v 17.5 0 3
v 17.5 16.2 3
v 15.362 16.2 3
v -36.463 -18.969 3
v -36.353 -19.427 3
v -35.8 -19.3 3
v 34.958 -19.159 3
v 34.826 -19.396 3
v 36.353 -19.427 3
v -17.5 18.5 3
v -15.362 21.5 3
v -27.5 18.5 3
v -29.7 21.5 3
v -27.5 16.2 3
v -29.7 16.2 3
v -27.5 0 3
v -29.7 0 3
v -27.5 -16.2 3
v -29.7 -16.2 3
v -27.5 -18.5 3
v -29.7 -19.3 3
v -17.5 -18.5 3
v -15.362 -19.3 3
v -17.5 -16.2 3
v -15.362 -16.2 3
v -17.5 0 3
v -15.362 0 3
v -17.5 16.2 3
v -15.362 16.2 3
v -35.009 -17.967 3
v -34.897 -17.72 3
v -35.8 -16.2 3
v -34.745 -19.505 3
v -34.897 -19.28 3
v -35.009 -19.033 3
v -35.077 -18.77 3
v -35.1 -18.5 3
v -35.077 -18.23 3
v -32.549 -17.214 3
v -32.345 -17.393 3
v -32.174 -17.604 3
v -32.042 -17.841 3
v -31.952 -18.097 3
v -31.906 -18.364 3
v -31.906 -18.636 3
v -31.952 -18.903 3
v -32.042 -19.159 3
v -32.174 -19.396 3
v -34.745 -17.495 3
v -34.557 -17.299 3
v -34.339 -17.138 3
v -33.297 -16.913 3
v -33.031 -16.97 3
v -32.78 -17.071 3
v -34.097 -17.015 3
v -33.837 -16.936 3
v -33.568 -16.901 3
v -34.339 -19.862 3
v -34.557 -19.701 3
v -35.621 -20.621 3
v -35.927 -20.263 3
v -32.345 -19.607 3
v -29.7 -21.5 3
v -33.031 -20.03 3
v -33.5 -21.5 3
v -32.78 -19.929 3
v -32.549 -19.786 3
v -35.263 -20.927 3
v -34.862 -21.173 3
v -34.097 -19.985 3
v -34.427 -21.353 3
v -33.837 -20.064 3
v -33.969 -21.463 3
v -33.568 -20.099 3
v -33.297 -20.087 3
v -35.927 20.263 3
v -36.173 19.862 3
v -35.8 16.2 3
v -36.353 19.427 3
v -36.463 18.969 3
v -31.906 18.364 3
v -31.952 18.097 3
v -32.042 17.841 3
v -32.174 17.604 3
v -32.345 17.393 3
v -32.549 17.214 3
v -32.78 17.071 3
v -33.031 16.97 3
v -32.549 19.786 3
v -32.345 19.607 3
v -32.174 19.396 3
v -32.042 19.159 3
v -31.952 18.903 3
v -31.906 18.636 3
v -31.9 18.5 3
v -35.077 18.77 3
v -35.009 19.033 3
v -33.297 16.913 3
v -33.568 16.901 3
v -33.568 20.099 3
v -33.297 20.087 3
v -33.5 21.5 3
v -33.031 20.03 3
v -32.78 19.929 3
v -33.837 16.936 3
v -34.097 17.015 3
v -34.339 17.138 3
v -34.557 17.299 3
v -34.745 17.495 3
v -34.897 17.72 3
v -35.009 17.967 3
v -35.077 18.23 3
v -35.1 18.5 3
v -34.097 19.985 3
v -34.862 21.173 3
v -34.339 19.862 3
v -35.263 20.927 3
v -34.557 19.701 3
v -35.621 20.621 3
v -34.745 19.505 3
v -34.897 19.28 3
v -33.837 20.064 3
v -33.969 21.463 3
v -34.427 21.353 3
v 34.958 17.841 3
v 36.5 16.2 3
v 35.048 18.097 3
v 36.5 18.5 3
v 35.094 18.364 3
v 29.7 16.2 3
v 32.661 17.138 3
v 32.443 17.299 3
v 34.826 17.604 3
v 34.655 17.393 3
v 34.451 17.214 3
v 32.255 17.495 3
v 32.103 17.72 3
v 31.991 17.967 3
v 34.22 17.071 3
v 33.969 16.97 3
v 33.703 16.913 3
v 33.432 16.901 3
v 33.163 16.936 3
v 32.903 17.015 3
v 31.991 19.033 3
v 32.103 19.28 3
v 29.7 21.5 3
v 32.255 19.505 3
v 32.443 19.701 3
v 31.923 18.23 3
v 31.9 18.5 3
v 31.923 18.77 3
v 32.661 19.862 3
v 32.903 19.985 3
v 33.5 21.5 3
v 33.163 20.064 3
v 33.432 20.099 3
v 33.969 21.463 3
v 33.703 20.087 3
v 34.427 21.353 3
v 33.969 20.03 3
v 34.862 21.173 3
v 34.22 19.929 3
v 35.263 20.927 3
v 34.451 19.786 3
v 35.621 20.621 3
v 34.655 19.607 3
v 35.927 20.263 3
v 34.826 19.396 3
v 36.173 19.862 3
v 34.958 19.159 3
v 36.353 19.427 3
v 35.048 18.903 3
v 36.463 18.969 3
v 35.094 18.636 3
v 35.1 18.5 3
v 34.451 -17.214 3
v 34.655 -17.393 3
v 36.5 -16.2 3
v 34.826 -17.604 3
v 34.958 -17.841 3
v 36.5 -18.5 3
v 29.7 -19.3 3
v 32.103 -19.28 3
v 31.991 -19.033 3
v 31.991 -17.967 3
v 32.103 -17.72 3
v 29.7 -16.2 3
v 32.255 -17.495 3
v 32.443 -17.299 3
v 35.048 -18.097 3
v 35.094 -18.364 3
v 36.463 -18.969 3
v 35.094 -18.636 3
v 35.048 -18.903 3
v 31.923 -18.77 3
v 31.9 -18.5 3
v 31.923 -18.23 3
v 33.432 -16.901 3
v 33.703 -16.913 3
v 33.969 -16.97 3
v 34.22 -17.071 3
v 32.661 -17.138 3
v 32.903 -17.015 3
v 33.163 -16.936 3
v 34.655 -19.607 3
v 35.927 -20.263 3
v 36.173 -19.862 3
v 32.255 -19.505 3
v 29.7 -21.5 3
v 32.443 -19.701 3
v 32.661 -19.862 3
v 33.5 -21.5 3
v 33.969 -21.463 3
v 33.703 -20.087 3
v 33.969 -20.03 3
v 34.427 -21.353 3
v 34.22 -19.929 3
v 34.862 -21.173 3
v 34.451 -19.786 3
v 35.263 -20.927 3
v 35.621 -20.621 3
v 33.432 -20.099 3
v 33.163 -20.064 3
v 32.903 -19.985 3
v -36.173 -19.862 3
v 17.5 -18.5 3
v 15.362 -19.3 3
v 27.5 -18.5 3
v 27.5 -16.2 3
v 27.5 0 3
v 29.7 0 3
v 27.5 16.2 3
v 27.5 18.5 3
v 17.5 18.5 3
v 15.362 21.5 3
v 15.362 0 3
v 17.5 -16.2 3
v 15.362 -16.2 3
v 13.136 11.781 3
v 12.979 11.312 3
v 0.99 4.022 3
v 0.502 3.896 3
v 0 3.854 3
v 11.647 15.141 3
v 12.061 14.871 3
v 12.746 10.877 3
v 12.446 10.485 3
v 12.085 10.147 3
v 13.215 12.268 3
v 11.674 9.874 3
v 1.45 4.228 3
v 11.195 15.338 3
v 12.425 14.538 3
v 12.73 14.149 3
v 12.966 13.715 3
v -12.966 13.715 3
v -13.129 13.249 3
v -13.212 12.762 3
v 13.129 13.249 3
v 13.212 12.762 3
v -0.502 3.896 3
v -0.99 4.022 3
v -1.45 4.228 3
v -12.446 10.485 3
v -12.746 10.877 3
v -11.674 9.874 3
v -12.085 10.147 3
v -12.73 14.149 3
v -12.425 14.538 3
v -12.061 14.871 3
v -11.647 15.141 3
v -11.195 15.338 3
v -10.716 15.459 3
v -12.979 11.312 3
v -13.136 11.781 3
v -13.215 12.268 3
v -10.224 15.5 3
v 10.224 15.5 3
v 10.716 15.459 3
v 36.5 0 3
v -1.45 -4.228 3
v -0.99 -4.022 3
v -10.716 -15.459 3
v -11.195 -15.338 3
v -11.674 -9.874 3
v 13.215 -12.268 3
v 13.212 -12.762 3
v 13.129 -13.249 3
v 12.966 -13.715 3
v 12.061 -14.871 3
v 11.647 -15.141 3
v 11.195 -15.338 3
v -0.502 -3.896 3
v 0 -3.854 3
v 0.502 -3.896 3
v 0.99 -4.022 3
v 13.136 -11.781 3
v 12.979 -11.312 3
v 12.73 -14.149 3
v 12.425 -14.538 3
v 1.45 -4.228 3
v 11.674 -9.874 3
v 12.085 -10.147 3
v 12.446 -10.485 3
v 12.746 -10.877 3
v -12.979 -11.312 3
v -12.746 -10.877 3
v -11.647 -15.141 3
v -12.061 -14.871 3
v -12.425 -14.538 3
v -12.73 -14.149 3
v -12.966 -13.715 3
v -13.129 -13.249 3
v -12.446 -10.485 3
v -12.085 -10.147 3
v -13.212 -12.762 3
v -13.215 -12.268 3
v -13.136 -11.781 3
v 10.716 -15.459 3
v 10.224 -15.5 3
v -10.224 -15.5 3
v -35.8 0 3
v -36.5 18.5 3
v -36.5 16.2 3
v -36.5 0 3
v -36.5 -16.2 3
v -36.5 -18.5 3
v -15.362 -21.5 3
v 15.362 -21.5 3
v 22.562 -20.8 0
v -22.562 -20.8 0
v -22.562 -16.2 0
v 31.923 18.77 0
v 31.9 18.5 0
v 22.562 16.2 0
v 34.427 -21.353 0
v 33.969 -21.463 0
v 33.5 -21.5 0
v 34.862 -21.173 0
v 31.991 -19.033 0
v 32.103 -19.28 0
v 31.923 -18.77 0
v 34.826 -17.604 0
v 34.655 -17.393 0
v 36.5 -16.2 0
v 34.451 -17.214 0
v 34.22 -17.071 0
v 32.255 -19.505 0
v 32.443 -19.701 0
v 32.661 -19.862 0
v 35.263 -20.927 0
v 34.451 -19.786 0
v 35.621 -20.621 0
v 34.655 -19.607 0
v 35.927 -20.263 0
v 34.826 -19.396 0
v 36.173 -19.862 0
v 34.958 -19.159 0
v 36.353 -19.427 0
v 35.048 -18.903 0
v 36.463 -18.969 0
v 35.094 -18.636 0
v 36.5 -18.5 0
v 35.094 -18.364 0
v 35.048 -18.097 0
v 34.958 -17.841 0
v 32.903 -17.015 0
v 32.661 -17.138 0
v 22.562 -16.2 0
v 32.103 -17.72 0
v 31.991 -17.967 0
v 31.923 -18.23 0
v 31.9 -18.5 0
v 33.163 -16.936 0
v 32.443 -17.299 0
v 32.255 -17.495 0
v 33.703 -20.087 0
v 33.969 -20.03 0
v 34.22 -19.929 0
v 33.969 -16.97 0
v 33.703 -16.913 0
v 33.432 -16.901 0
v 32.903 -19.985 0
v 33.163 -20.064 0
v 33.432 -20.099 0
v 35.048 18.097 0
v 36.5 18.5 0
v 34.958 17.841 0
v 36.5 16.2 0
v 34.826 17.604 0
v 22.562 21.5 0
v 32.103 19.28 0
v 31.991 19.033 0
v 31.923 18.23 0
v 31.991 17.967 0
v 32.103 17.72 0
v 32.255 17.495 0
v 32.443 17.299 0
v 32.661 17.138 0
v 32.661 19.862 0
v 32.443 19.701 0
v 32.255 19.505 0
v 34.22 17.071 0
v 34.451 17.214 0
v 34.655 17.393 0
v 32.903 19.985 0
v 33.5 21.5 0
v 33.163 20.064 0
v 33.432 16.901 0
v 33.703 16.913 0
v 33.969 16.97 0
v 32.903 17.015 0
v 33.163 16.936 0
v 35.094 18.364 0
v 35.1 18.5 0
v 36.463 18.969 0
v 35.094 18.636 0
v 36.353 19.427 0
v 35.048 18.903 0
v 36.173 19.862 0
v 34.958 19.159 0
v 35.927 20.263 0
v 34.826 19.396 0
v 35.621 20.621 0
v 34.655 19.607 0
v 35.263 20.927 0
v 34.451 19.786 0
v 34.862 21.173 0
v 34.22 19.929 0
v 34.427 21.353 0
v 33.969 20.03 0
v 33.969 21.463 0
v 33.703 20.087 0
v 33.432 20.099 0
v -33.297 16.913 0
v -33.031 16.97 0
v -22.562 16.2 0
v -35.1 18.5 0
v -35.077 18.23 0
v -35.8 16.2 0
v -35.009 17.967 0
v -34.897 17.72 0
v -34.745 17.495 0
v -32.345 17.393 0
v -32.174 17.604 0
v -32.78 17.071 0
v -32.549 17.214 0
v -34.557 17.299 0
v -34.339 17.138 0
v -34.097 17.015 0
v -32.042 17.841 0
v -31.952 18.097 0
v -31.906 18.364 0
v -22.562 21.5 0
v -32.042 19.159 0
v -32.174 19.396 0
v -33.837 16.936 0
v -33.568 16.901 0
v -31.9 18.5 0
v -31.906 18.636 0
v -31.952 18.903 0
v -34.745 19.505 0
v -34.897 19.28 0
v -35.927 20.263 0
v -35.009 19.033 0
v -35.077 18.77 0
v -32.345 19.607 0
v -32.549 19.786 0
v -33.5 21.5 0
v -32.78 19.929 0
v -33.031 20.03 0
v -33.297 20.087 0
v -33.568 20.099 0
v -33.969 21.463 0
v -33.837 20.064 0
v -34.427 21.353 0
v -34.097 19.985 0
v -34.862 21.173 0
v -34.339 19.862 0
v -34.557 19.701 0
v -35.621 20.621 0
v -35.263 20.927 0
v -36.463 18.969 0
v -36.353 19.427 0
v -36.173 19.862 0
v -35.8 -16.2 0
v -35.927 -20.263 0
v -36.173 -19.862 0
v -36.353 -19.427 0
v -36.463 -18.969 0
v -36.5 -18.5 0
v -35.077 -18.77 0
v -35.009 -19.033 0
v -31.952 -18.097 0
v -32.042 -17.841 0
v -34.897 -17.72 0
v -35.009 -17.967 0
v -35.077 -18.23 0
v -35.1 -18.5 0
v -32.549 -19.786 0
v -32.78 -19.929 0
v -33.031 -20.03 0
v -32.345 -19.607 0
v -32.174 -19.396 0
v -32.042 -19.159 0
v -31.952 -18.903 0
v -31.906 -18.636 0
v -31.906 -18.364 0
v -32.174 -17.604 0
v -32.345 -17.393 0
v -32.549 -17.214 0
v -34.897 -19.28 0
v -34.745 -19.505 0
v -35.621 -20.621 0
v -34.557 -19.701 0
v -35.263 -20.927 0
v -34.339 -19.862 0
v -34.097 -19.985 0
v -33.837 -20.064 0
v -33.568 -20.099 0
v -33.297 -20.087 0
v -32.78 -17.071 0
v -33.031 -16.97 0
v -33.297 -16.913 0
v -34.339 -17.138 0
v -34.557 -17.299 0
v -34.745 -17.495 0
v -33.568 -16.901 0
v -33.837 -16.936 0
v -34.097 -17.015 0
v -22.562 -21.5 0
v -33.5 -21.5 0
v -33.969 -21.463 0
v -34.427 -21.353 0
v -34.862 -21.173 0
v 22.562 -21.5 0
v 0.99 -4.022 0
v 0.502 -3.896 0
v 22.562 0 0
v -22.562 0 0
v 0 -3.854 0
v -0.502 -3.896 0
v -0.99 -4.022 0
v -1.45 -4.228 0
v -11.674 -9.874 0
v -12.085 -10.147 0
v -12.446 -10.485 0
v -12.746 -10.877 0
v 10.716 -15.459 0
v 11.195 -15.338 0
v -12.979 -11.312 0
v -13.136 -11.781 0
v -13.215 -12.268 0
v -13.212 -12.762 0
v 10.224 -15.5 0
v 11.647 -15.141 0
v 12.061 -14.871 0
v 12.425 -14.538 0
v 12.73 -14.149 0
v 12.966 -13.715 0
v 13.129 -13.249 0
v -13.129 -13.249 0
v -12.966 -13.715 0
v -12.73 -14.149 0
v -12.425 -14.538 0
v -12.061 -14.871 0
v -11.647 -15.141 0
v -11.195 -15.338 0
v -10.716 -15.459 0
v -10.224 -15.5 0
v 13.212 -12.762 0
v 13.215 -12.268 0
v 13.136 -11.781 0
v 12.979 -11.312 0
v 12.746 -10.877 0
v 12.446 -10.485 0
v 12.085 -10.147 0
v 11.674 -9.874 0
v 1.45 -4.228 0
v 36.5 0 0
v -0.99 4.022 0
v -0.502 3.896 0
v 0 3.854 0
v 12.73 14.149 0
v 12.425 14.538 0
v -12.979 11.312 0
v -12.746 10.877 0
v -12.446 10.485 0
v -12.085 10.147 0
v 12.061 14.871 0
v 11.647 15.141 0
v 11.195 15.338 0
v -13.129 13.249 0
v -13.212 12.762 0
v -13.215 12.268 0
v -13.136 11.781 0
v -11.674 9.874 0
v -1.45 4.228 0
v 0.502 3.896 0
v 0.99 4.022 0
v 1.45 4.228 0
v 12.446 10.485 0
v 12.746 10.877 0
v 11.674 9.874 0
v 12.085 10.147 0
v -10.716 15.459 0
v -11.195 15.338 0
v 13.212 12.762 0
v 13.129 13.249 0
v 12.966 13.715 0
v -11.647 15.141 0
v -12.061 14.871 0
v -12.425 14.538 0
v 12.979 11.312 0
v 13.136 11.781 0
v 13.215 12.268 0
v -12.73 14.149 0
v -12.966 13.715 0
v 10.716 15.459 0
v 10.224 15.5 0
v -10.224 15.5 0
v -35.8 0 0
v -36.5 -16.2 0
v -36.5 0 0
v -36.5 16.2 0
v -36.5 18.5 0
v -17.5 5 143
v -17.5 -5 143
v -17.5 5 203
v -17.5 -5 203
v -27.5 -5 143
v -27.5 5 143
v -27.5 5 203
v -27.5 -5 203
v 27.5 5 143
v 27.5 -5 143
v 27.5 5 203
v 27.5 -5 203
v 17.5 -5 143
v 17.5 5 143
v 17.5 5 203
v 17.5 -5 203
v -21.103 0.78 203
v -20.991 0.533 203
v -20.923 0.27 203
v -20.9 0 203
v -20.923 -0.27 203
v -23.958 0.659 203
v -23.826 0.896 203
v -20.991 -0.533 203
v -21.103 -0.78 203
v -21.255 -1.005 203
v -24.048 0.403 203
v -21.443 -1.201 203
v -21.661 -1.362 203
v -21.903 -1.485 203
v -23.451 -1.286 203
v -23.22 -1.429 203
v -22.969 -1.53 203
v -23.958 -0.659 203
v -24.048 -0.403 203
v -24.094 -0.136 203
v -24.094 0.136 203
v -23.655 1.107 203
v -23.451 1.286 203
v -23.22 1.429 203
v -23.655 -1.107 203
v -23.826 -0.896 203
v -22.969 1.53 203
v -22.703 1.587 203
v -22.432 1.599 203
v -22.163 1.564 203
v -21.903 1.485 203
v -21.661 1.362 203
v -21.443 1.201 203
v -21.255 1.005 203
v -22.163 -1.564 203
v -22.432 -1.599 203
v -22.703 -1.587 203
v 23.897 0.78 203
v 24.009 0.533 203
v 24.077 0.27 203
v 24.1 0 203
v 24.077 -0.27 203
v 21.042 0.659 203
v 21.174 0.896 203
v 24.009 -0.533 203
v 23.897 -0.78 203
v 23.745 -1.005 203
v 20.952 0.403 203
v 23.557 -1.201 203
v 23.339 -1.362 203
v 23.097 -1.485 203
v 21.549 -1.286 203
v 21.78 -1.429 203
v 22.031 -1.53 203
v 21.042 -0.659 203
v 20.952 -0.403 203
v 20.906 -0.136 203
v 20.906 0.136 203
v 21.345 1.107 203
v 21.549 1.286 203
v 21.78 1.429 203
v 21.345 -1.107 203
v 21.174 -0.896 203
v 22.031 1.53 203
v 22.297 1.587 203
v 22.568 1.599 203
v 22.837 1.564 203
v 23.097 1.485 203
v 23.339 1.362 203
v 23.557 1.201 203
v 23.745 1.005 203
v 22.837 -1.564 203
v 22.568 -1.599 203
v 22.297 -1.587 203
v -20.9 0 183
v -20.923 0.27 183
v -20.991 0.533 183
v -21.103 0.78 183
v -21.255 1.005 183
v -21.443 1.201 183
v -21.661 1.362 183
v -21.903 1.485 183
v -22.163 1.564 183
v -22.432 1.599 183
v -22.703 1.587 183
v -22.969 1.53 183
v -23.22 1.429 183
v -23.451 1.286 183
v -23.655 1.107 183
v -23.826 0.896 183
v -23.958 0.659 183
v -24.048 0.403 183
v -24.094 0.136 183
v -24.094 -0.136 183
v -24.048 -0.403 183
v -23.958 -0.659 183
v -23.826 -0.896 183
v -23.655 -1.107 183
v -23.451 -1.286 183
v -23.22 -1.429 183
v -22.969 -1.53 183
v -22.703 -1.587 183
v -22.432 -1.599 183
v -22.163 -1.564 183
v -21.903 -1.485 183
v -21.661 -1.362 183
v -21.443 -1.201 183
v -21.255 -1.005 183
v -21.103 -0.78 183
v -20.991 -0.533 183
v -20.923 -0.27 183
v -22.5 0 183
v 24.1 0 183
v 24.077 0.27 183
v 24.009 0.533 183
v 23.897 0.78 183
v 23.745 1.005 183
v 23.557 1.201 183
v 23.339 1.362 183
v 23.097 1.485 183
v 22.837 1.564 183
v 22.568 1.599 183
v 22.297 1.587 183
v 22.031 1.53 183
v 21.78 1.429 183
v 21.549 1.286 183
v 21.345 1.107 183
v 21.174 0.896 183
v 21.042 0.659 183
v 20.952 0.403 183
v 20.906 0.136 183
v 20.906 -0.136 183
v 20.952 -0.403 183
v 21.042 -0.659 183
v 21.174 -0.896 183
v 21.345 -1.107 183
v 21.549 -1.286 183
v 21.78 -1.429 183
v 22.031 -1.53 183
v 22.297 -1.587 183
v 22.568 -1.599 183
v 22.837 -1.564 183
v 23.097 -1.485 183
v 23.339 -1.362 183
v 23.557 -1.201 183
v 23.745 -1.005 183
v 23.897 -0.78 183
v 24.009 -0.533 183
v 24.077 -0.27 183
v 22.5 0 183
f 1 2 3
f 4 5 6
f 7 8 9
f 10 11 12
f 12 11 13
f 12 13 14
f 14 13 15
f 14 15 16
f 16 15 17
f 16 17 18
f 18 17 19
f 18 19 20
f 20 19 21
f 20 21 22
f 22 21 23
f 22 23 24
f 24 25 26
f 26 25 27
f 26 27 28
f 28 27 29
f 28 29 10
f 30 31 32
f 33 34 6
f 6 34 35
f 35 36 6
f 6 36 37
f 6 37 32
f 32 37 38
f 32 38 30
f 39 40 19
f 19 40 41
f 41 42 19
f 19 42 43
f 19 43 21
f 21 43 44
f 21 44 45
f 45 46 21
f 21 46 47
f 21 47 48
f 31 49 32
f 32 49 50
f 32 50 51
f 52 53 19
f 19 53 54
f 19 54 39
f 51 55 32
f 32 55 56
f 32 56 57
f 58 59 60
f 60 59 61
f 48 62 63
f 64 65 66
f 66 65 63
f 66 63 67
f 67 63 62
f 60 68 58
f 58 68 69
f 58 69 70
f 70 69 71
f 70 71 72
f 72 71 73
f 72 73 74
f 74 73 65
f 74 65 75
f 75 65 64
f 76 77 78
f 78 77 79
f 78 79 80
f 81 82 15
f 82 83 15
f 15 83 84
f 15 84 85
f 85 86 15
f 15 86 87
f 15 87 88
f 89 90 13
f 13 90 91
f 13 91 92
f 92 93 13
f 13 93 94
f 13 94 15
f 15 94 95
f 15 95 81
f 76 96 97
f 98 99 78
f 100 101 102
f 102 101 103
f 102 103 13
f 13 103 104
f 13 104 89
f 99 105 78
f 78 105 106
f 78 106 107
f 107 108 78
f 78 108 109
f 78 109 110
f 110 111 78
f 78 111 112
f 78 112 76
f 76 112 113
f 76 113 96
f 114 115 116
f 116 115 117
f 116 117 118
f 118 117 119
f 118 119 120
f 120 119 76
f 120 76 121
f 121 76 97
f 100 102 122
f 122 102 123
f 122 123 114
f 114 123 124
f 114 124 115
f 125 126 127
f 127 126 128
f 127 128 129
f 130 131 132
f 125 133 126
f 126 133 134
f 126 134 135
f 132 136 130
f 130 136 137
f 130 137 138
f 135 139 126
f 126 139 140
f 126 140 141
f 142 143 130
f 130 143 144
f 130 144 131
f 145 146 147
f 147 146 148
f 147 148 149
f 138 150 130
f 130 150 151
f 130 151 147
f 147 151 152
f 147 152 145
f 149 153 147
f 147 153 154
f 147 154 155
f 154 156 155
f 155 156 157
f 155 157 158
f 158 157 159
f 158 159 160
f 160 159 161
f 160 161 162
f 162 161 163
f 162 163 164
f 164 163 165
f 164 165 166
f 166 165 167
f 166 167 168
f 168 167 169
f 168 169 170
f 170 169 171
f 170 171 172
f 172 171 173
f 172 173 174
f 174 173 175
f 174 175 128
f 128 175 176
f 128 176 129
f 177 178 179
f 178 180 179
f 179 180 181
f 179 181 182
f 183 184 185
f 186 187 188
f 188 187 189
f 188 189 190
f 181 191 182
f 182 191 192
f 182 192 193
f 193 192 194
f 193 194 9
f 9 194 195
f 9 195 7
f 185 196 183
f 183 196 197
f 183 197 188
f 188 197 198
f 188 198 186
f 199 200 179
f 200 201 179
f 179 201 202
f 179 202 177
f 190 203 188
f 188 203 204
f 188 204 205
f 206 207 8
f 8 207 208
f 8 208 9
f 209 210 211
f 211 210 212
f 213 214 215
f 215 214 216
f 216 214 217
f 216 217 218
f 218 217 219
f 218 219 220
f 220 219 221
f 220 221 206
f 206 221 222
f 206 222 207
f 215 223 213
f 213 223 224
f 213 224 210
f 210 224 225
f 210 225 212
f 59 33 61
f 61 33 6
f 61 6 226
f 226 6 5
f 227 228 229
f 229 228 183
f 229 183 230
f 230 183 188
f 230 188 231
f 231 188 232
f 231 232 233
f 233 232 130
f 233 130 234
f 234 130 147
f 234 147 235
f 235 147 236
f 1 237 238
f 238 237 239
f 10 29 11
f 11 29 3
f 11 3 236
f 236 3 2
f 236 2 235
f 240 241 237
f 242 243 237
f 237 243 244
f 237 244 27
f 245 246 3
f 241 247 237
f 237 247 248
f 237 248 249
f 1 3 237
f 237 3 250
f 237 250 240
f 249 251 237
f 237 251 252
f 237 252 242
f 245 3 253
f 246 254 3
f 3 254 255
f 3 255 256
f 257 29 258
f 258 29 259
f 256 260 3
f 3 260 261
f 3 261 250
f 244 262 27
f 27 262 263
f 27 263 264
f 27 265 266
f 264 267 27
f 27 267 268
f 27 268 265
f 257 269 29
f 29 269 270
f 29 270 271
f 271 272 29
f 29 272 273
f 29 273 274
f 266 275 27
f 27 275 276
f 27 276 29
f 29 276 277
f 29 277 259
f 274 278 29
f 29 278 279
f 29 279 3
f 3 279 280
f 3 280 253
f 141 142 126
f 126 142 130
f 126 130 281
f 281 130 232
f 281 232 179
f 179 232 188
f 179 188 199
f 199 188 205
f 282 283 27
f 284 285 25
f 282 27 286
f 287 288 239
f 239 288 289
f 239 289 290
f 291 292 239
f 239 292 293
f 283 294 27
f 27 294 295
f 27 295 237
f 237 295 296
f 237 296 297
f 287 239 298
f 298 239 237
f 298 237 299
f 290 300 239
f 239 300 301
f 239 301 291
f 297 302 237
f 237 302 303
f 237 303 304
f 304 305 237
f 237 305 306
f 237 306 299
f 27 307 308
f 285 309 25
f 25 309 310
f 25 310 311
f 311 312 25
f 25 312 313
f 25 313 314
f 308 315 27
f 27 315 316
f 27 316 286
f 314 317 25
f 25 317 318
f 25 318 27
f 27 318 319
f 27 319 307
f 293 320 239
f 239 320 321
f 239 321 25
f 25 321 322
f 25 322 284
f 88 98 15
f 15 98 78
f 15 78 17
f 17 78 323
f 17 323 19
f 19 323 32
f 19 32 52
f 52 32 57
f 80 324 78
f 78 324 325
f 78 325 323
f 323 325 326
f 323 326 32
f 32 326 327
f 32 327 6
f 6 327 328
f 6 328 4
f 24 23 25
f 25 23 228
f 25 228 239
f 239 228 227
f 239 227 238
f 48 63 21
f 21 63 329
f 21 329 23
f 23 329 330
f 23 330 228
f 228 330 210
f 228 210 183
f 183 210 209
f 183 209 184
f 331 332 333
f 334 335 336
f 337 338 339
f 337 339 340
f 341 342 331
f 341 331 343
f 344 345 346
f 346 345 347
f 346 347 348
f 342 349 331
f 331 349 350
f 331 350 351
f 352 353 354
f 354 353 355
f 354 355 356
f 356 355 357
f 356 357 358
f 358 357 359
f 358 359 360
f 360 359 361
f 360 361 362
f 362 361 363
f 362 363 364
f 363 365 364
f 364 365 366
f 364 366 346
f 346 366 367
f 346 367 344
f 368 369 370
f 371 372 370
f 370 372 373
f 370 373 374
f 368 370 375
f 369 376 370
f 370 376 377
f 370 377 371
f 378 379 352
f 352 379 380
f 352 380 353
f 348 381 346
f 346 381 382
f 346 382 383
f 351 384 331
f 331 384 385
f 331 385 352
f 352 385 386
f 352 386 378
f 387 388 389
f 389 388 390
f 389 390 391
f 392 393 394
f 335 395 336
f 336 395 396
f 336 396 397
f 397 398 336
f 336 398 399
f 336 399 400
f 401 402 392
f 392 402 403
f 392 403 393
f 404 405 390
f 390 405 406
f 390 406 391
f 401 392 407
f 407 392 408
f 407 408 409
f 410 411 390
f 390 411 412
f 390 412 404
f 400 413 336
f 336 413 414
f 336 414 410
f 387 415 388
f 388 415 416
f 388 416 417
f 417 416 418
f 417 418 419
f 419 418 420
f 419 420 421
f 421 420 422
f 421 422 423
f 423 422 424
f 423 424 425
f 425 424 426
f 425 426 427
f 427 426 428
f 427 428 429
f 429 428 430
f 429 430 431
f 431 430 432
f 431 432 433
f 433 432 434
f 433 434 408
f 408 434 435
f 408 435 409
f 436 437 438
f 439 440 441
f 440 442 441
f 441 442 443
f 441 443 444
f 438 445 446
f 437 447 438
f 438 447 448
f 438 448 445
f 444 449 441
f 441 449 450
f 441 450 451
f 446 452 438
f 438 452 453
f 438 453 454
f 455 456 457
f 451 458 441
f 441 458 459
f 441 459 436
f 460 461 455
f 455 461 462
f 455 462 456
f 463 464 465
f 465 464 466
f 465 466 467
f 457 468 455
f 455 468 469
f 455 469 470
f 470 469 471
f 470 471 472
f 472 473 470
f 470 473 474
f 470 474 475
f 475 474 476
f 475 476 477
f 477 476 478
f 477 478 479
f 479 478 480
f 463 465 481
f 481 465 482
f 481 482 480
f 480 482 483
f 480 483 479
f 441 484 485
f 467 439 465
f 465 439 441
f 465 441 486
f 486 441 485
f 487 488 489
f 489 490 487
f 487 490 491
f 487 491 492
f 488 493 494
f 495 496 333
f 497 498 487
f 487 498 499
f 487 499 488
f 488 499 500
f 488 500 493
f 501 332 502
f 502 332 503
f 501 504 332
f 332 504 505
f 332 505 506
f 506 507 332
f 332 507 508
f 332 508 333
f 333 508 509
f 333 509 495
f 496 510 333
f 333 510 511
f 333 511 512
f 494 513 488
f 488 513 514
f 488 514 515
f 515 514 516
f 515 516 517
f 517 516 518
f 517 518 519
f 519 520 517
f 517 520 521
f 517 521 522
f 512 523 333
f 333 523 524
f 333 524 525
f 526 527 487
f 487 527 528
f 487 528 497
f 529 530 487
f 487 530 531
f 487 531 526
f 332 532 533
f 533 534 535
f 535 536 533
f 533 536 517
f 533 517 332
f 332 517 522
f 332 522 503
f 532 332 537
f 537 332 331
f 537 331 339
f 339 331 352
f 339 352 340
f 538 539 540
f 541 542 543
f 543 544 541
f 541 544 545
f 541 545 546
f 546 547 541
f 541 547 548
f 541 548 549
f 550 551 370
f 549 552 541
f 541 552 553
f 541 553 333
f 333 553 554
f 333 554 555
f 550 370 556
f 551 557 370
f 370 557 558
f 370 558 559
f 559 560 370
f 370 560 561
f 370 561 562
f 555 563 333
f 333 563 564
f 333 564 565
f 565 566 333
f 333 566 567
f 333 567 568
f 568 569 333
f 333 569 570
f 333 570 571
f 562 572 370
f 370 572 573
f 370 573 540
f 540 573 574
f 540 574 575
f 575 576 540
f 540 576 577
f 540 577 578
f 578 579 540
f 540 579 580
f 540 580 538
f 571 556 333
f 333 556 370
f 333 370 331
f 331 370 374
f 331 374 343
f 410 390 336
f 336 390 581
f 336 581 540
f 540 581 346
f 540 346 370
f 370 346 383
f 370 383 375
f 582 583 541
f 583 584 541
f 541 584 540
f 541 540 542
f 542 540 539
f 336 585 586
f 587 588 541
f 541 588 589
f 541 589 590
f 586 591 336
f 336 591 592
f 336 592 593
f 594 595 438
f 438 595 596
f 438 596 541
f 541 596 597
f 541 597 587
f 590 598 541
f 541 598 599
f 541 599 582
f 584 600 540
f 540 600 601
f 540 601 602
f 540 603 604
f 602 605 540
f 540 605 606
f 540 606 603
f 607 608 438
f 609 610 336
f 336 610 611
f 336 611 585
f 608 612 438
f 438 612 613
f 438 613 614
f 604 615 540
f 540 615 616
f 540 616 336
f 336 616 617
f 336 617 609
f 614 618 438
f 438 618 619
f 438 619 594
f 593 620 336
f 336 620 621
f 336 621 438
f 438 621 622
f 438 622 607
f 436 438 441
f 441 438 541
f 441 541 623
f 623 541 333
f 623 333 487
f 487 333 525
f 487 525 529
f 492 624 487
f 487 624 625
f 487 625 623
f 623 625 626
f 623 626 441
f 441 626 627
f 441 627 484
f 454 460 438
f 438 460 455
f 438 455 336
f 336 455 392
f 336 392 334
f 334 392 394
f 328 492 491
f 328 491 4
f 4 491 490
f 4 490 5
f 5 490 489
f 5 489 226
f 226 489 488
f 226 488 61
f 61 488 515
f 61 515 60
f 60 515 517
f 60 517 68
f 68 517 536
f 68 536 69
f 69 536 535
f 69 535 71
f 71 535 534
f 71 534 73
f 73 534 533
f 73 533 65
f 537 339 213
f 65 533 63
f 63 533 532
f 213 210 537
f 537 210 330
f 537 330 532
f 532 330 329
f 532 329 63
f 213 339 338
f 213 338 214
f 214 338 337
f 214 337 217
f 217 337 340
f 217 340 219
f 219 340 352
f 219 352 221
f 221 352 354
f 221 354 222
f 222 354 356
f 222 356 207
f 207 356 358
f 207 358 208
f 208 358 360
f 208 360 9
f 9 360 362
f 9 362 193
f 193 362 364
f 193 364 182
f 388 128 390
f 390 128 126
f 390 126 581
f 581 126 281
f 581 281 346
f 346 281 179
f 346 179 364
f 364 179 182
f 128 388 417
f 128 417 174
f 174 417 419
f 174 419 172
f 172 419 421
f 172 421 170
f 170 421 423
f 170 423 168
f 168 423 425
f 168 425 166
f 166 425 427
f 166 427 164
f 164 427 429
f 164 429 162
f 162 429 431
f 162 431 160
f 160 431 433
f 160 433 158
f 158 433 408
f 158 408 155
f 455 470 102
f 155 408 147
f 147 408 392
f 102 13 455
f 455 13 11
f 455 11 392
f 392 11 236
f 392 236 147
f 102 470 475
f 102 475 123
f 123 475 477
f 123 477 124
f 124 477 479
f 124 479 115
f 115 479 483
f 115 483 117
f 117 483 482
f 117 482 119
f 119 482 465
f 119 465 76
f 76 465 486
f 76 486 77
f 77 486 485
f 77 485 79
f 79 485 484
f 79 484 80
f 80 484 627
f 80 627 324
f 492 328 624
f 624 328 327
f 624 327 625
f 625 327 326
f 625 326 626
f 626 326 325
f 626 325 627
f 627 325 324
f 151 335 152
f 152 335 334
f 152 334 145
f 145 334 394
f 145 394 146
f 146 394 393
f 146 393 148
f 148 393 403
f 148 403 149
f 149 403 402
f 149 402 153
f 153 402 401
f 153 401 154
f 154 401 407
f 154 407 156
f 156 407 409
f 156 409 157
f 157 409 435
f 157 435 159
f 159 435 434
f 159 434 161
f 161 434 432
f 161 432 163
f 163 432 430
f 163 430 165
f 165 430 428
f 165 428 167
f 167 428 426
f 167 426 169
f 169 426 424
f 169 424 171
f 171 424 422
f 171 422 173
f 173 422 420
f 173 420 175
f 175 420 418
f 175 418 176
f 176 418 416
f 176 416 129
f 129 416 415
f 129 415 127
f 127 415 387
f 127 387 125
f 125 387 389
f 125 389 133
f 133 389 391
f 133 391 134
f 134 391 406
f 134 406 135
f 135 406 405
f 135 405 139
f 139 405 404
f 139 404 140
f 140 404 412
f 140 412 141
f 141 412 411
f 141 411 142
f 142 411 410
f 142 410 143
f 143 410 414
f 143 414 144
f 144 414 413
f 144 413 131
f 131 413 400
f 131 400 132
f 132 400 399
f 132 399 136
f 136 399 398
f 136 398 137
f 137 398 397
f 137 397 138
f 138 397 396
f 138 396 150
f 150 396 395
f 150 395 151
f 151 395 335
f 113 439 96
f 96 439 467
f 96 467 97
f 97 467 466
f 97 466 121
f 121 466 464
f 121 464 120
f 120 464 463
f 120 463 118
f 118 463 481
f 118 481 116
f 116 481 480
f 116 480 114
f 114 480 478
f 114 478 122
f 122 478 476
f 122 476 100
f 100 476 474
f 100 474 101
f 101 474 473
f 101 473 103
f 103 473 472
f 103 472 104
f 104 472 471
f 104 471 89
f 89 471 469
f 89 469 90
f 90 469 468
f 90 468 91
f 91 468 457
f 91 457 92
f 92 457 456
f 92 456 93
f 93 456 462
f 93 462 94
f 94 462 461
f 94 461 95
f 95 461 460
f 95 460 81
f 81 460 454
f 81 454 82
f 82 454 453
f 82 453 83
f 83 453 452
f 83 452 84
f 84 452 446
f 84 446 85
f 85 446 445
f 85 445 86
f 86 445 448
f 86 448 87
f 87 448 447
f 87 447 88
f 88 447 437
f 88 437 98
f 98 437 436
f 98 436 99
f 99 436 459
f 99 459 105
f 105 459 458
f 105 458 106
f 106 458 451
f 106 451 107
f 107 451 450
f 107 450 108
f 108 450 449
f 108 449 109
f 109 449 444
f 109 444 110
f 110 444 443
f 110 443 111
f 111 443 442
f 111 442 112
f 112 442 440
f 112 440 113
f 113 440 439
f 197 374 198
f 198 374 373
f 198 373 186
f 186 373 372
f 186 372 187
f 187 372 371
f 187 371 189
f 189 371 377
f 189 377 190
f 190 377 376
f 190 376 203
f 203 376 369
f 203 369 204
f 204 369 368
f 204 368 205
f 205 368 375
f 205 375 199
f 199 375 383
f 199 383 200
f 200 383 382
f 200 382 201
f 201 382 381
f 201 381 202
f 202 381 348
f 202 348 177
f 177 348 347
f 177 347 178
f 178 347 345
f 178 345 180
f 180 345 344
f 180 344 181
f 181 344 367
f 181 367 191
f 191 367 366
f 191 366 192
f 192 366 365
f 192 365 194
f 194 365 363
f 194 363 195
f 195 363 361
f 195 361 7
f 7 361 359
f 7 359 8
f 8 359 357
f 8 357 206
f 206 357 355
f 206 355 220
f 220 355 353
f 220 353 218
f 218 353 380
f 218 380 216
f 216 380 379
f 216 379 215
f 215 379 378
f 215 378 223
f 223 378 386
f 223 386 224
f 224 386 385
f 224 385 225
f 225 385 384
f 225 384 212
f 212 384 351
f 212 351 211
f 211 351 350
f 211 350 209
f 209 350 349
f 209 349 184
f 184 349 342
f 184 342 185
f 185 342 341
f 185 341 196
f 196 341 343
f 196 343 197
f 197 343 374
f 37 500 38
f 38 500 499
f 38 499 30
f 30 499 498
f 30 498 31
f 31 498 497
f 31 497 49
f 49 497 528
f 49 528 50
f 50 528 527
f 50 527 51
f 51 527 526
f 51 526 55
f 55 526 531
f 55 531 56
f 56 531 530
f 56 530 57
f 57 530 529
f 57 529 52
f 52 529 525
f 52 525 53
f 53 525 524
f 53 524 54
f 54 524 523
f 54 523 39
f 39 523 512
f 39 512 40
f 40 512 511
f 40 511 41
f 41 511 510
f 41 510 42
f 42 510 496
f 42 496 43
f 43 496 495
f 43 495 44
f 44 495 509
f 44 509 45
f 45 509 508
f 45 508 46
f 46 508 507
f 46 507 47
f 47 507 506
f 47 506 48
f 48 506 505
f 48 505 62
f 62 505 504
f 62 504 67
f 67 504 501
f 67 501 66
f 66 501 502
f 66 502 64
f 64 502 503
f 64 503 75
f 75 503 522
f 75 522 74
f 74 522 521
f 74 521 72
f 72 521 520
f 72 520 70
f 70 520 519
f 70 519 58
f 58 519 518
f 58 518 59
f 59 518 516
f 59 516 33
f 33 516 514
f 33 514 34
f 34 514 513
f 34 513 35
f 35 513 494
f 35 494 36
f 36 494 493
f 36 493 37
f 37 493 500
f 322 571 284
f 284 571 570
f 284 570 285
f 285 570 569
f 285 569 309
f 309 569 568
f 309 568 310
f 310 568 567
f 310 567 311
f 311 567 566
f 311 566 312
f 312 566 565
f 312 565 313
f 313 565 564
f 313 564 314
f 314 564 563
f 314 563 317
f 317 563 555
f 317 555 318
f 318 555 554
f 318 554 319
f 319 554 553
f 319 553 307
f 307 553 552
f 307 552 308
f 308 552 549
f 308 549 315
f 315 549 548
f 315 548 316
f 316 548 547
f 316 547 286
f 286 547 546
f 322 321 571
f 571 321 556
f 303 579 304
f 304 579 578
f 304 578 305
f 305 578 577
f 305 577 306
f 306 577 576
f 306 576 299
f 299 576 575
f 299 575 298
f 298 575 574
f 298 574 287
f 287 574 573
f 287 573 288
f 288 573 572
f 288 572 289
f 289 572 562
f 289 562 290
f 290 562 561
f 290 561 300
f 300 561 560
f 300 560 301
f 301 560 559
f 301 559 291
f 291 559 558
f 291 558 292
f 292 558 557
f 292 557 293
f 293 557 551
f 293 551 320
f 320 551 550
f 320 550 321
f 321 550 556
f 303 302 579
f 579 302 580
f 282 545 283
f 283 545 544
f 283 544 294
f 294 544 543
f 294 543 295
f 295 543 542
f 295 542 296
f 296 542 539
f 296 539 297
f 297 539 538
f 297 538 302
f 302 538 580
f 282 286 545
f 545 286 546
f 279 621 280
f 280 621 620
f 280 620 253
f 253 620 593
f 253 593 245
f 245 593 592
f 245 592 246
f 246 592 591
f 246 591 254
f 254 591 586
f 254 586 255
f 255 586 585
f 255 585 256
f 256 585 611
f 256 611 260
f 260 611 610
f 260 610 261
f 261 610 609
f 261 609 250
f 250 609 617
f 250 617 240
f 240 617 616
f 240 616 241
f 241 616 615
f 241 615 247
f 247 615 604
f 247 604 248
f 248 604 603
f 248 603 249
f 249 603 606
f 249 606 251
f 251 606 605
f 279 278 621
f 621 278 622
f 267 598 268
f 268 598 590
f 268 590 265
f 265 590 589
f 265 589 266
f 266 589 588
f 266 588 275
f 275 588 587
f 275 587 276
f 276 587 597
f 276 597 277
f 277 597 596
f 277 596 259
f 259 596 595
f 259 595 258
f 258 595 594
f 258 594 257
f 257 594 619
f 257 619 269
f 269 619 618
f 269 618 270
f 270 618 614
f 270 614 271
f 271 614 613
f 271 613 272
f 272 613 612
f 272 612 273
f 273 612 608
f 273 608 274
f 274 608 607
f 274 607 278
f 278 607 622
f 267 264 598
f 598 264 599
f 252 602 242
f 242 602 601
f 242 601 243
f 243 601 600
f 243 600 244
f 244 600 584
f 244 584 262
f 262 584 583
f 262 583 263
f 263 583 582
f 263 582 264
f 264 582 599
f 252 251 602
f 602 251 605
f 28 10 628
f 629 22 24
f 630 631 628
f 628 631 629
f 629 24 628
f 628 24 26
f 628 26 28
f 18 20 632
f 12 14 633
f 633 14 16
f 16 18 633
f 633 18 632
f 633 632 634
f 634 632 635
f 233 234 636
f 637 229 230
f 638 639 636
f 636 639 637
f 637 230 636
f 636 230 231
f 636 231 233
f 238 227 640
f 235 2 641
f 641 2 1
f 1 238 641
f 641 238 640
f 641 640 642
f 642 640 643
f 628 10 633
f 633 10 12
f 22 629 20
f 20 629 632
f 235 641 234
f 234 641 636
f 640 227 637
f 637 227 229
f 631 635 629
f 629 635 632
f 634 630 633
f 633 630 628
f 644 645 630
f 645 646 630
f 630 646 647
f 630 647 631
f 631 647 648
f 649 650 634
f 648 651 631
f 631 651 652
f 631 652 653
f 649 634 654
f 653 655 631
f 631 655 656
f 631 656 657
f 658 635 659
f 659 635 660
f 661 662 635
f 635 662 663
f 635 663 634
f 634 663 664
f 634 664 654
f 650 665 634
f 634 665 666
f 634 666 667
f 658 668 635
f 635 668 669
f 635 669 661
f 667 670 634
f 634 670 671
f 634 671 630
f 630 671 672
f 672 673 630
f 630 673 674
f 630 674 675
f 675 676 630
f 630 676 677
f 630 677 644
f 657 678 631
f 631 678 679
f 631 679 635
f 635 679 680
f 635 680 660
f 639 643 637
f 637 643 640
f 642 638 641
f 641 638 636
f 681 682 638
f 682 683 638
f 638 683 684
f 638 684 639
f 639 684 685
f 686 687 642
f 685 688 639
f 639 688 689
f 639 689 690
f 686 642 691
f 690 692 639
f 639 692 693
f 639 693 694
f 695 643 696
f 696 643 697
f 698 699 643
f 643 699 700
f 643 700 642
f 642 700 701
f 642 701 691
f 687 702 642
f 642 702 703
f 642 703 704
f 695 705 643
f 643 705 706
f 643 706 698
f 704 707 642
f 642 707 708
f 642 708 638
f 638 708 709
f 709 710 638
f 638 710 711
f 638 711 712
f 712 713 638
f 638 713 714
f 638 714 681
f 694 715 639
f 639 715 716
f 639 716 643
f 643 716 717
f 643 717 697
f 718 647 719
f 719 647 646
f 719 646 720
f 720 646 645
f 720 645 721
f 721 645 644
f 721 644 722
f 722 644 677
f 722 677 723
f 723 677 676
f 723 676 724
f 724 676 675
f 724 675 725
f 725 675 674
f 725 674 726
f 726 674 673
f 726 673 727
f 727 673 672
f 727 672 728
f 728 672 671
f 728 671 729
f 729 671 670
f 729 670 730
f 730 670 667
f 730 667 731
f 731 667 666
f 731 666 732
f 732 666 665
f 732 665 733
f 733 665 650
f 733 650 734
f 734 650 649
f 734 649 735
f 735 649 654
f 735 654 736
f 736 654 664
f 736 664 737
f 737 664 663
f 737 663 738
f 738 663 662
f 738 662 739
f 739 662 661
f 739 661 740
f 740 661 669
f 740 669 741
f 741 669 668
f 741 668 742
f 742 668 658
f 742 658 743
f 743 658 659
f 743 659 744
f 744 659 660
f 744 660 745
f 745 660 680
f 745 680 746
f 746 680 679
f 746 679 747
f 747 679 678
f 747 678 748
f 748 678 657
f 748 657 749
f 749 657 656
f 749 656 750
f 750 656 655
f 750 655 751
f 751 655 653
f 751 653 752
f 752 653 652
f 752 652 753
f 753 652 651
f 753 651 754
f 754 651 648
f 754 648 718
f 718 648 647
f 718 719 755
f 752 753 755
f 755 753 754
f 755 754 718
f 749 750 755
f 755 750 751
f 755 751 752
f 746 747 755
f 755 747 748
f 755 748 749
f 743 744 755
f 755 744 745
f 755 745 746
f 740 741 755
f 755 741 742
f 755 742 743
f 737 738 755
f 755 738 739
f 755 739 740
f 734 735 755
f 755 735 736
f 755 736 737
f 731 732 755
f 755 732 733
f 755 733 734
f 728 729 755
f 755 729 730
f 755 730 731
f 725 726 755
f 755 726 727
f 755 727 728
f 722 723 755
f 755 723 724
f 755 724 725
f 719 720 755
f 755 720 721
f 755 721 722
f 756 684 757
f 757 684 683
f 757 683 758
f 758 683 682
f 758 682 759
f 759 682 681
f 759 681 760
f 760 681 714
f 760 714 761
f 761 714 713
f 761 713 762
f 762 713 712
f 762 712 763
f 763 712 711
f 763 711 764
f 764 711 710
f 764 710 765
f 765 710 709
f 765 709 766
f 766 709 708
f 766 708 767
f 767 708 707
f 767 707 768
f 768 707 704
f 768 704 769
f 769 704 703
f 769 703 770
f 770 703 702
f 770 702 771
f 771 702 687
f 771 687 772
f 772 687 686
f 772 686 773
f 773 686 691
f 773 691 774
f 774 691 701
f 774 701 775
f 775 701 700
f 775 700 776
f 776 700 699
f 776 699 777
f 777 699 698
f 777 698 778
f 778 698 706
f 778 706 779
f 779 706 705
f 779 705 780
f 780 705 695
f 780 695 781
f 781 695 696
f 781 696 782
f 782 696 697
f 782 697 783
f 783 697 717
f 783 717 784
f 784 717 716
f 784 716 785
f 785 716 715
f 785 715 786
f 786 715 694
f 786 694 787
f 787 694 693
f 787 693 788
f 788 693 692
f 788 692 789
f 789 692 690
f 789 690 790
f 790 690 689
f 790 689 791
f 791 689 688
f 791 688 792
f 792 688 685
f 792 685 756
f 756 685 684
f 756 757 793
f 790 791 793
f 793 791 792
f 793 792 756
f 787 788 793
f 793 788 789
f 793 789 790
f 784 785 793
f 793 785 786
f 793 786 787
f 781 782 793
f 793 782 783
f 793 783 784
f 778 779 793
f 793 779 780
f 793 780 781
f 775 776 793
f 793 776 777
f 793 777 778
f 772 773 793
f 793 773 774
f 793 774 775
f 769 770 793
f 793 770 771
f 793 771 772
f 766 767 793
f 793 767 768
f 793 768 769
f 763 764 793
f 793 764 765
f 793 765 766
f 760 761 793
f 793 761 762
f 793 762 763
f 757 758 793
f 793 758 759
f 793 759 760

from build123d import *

# Parameters (mm, degrees)
SKETCH_1_R          = 1.6
EXTRUDE_1_DEPTH     = 3
SKETCH_2_W          = 10
SKETCH_2_H          = 10
EXTRUDE_3_DEPTH     = 140
EXTRUDE_4_DEPTH     = 10
EXTRUDE_5_DEPTH     = 10
EXTRUDE_6_DEPTH     = 10
SKETCH_9_W          = 10
SKETCH_9_H          = 10
EXTRUDE_7_DEPTH     = 60
SKETCH_10_W         = 10
SKETCH_10_H         = 10
EXTRUDE_8_DEPTH     = 60
SKETCH_11_R         = 1.6
CUT_EXTRUDE_3_DEPTH = 20
SKETCH_12_R         = 1.6
CUT_EXTRUDE_4_DEPTH = 20


with BuildPart() as part:
    # 草图1 → 凸台-拉伸1 (new body)
    with BuildSketch(Plane.XY):
        with BuildLine():
            Line((33.5, 21.5), (-33.5, 21.5))
            ThreePointArc((-33.5, 21.5), (-35.621320344, 20.621320344), (-36.5, 18.5))
            Line((-36.5, 18.5), (-36.5, -18.5))
            ThreePointArc((-36.5, -18.5), (-35.621320344, -20.621320344), (-33.5, -21.5))
            Line((-33.5, -21.5), (33.5, -21.5))
            ThreePointArc((33.5, -21.5), (35.621320344, -20.621320344), (36.5, -18.5))
            Line((36.5, -18.5), (36.5, 18.5))
            ThreePointArc((36.5, 18.5), (35.621320344, 20.621320344), (33.5, 21.5))
        make_face()
        with Locations((33.5, 18.5)):
            Circle(SKETCH_1_R, mode=Mode.SUBTRACT)
        with Locations((-33.5, 18.5)):
            Circle(SKETCH_1_R, mode=Mode.SUBTRACT)
        with Locations(Location((33.5, -18.5, 0), (0, 0, 180))):
            Circle(SKETCH_1_R, mode=Mode.SUBTRACT)
        with Locations(Location((-33.5, -18.5, 0), (0, 0, 180))):
            Circle(SKETCH_1_R, mode=Mode.SUBTRACT)
        with BuildLine():
            Line((1.450268103, -4.227949809), (11.673904999, -9.873838841))
            ThreePointArc((11.673904999, -9.873838841), (13.1286742, -13.248837941), (10.223636896, -15.5))
            Line((10.223636896, -15.5), (-10.223636896, -15.5))
            ThreePointArc((-10.223636896, -15.5), (-13.1286742, -13.248837941), (-11.673904999, -9.873838841))
            Line((-11.673904999, -9.873838841), (-1.450268103, -4.227949809))
            ThreePointArc((-1.450268103, -4.227949809), (0, -3.854110968), (1.450268103, -4.227949809))
        make_face(mode=Mode.SUBTRACT)
        with BuildLine():
            Line((11.673904999, 9.873838841), (1.450268103, 4.227949809))
            ThreePointArc((1.450268103, 4.227949809), (0, 3.854110968), (-1.450268103, 4.227949809))
            Line((-1.450268103, 4.227949809), (-11.673904999, 9.873838841))
            ThreePointArc((-11.673904999, 9.873838841), (-13.1286742, 13.248837941), (-10.223636896, 15.5))
            Line((-10.223636896, 15.5), (10.223636896, 15.5))
            ThreePointArc((10.223636896, 15.5), (13.1286742, 13.248837941), (11.673904999, 9.873838841))
        make_face(mode=Mode.SUBTRACT)
    extrude(amount=EXTRUDE_1_DEPTH)

    # 草图2 → 凸台-拉伸3 (add)
    with BuildSketch(Plane.XY.offset(3)):
        with Locations((-22.5, 0)):
            Rectangle(SKETCH_2_W, SKETCH_2_H)
        with Locations((22.5, 0)):
            Rectangle(SKETCH_2_W, SKETCH_2_H)
    extrude(amount=EXTRUDE_3_DEPTH)

    # 草图5 → 凸台-拉伸4 (add)
    with BuildSketch(Plane.ZY.offset(27.5)):
        Polygon((3, 18.5), (3, 5), (143, 5), align=None)
    extrude(amount=-EXTRUDE_4_DEPTH)

    # 草图6 → 凸台-拉伸5 (add)
    with BuildSketch(Plane.ZY.offset(27.5)):
        Polygon((3, -5), (3, -18.5), (143, -5), align=None)
    extrude(amount=-EXTRUDE_5_DEPTH)

    # 草图7 → 凸台-拉伸6 (add)
    with BuildSketch(Plane(origin=(27.5, 0, 0), x_dir=(0, 0, -1), z_dir=(1, 0, 0))):
        Polygon((-143, 5), (-3, 5), (-3, 18.5), align=None)
        Polygon((-143, -5), (-3, -18.5), (-3, -5), align=None)
    extrude(amount=-EXTRUDE_6_DEPTH)

    # 草图9 → 凸台-拉伸7 (add)
    with BuildSketch(Plane.XY.offset(143)):
        with Locations((-22.5, 0)):
            Rectangle(SKETCH_9_W, SKETCH_9_H)
    extrude(amount=EXTRUDE_7_DEPTH)

    # 草图10 → 凸台-拉伸8 (add)
    with BuildSketch(Plane.XY.offset(143)):
        with Locations((22.5, 0)):
            Rectangle(SKETCH_10_W, SKETCH_10_H)
    extrude(amount=EXTRUDE_8_DEPTH)

    # 草图11 → 切除-拉伸3 (cut)
    with BuildSketch(Plane.XY.offset(203)):
        with Locations((-22.5, 0)):
            Circle(SKETCH_11_R)
    extrude(amount=-CUT_EXTRUDE_3_DEPTH, mode=Mode.SUBTRACT)

    # 草图12 → 切除-拉伸4 (cut)
    with BuildSketch(Plane.XY.offset(203)):
        with Locations((22.5, 0)):
            Circle(SKETCH_12_R)
    extrude(amount=-CUT_EXTRUDE_4_DEPTH, mode=Mode.SUBTRACT)


solid = part.part
